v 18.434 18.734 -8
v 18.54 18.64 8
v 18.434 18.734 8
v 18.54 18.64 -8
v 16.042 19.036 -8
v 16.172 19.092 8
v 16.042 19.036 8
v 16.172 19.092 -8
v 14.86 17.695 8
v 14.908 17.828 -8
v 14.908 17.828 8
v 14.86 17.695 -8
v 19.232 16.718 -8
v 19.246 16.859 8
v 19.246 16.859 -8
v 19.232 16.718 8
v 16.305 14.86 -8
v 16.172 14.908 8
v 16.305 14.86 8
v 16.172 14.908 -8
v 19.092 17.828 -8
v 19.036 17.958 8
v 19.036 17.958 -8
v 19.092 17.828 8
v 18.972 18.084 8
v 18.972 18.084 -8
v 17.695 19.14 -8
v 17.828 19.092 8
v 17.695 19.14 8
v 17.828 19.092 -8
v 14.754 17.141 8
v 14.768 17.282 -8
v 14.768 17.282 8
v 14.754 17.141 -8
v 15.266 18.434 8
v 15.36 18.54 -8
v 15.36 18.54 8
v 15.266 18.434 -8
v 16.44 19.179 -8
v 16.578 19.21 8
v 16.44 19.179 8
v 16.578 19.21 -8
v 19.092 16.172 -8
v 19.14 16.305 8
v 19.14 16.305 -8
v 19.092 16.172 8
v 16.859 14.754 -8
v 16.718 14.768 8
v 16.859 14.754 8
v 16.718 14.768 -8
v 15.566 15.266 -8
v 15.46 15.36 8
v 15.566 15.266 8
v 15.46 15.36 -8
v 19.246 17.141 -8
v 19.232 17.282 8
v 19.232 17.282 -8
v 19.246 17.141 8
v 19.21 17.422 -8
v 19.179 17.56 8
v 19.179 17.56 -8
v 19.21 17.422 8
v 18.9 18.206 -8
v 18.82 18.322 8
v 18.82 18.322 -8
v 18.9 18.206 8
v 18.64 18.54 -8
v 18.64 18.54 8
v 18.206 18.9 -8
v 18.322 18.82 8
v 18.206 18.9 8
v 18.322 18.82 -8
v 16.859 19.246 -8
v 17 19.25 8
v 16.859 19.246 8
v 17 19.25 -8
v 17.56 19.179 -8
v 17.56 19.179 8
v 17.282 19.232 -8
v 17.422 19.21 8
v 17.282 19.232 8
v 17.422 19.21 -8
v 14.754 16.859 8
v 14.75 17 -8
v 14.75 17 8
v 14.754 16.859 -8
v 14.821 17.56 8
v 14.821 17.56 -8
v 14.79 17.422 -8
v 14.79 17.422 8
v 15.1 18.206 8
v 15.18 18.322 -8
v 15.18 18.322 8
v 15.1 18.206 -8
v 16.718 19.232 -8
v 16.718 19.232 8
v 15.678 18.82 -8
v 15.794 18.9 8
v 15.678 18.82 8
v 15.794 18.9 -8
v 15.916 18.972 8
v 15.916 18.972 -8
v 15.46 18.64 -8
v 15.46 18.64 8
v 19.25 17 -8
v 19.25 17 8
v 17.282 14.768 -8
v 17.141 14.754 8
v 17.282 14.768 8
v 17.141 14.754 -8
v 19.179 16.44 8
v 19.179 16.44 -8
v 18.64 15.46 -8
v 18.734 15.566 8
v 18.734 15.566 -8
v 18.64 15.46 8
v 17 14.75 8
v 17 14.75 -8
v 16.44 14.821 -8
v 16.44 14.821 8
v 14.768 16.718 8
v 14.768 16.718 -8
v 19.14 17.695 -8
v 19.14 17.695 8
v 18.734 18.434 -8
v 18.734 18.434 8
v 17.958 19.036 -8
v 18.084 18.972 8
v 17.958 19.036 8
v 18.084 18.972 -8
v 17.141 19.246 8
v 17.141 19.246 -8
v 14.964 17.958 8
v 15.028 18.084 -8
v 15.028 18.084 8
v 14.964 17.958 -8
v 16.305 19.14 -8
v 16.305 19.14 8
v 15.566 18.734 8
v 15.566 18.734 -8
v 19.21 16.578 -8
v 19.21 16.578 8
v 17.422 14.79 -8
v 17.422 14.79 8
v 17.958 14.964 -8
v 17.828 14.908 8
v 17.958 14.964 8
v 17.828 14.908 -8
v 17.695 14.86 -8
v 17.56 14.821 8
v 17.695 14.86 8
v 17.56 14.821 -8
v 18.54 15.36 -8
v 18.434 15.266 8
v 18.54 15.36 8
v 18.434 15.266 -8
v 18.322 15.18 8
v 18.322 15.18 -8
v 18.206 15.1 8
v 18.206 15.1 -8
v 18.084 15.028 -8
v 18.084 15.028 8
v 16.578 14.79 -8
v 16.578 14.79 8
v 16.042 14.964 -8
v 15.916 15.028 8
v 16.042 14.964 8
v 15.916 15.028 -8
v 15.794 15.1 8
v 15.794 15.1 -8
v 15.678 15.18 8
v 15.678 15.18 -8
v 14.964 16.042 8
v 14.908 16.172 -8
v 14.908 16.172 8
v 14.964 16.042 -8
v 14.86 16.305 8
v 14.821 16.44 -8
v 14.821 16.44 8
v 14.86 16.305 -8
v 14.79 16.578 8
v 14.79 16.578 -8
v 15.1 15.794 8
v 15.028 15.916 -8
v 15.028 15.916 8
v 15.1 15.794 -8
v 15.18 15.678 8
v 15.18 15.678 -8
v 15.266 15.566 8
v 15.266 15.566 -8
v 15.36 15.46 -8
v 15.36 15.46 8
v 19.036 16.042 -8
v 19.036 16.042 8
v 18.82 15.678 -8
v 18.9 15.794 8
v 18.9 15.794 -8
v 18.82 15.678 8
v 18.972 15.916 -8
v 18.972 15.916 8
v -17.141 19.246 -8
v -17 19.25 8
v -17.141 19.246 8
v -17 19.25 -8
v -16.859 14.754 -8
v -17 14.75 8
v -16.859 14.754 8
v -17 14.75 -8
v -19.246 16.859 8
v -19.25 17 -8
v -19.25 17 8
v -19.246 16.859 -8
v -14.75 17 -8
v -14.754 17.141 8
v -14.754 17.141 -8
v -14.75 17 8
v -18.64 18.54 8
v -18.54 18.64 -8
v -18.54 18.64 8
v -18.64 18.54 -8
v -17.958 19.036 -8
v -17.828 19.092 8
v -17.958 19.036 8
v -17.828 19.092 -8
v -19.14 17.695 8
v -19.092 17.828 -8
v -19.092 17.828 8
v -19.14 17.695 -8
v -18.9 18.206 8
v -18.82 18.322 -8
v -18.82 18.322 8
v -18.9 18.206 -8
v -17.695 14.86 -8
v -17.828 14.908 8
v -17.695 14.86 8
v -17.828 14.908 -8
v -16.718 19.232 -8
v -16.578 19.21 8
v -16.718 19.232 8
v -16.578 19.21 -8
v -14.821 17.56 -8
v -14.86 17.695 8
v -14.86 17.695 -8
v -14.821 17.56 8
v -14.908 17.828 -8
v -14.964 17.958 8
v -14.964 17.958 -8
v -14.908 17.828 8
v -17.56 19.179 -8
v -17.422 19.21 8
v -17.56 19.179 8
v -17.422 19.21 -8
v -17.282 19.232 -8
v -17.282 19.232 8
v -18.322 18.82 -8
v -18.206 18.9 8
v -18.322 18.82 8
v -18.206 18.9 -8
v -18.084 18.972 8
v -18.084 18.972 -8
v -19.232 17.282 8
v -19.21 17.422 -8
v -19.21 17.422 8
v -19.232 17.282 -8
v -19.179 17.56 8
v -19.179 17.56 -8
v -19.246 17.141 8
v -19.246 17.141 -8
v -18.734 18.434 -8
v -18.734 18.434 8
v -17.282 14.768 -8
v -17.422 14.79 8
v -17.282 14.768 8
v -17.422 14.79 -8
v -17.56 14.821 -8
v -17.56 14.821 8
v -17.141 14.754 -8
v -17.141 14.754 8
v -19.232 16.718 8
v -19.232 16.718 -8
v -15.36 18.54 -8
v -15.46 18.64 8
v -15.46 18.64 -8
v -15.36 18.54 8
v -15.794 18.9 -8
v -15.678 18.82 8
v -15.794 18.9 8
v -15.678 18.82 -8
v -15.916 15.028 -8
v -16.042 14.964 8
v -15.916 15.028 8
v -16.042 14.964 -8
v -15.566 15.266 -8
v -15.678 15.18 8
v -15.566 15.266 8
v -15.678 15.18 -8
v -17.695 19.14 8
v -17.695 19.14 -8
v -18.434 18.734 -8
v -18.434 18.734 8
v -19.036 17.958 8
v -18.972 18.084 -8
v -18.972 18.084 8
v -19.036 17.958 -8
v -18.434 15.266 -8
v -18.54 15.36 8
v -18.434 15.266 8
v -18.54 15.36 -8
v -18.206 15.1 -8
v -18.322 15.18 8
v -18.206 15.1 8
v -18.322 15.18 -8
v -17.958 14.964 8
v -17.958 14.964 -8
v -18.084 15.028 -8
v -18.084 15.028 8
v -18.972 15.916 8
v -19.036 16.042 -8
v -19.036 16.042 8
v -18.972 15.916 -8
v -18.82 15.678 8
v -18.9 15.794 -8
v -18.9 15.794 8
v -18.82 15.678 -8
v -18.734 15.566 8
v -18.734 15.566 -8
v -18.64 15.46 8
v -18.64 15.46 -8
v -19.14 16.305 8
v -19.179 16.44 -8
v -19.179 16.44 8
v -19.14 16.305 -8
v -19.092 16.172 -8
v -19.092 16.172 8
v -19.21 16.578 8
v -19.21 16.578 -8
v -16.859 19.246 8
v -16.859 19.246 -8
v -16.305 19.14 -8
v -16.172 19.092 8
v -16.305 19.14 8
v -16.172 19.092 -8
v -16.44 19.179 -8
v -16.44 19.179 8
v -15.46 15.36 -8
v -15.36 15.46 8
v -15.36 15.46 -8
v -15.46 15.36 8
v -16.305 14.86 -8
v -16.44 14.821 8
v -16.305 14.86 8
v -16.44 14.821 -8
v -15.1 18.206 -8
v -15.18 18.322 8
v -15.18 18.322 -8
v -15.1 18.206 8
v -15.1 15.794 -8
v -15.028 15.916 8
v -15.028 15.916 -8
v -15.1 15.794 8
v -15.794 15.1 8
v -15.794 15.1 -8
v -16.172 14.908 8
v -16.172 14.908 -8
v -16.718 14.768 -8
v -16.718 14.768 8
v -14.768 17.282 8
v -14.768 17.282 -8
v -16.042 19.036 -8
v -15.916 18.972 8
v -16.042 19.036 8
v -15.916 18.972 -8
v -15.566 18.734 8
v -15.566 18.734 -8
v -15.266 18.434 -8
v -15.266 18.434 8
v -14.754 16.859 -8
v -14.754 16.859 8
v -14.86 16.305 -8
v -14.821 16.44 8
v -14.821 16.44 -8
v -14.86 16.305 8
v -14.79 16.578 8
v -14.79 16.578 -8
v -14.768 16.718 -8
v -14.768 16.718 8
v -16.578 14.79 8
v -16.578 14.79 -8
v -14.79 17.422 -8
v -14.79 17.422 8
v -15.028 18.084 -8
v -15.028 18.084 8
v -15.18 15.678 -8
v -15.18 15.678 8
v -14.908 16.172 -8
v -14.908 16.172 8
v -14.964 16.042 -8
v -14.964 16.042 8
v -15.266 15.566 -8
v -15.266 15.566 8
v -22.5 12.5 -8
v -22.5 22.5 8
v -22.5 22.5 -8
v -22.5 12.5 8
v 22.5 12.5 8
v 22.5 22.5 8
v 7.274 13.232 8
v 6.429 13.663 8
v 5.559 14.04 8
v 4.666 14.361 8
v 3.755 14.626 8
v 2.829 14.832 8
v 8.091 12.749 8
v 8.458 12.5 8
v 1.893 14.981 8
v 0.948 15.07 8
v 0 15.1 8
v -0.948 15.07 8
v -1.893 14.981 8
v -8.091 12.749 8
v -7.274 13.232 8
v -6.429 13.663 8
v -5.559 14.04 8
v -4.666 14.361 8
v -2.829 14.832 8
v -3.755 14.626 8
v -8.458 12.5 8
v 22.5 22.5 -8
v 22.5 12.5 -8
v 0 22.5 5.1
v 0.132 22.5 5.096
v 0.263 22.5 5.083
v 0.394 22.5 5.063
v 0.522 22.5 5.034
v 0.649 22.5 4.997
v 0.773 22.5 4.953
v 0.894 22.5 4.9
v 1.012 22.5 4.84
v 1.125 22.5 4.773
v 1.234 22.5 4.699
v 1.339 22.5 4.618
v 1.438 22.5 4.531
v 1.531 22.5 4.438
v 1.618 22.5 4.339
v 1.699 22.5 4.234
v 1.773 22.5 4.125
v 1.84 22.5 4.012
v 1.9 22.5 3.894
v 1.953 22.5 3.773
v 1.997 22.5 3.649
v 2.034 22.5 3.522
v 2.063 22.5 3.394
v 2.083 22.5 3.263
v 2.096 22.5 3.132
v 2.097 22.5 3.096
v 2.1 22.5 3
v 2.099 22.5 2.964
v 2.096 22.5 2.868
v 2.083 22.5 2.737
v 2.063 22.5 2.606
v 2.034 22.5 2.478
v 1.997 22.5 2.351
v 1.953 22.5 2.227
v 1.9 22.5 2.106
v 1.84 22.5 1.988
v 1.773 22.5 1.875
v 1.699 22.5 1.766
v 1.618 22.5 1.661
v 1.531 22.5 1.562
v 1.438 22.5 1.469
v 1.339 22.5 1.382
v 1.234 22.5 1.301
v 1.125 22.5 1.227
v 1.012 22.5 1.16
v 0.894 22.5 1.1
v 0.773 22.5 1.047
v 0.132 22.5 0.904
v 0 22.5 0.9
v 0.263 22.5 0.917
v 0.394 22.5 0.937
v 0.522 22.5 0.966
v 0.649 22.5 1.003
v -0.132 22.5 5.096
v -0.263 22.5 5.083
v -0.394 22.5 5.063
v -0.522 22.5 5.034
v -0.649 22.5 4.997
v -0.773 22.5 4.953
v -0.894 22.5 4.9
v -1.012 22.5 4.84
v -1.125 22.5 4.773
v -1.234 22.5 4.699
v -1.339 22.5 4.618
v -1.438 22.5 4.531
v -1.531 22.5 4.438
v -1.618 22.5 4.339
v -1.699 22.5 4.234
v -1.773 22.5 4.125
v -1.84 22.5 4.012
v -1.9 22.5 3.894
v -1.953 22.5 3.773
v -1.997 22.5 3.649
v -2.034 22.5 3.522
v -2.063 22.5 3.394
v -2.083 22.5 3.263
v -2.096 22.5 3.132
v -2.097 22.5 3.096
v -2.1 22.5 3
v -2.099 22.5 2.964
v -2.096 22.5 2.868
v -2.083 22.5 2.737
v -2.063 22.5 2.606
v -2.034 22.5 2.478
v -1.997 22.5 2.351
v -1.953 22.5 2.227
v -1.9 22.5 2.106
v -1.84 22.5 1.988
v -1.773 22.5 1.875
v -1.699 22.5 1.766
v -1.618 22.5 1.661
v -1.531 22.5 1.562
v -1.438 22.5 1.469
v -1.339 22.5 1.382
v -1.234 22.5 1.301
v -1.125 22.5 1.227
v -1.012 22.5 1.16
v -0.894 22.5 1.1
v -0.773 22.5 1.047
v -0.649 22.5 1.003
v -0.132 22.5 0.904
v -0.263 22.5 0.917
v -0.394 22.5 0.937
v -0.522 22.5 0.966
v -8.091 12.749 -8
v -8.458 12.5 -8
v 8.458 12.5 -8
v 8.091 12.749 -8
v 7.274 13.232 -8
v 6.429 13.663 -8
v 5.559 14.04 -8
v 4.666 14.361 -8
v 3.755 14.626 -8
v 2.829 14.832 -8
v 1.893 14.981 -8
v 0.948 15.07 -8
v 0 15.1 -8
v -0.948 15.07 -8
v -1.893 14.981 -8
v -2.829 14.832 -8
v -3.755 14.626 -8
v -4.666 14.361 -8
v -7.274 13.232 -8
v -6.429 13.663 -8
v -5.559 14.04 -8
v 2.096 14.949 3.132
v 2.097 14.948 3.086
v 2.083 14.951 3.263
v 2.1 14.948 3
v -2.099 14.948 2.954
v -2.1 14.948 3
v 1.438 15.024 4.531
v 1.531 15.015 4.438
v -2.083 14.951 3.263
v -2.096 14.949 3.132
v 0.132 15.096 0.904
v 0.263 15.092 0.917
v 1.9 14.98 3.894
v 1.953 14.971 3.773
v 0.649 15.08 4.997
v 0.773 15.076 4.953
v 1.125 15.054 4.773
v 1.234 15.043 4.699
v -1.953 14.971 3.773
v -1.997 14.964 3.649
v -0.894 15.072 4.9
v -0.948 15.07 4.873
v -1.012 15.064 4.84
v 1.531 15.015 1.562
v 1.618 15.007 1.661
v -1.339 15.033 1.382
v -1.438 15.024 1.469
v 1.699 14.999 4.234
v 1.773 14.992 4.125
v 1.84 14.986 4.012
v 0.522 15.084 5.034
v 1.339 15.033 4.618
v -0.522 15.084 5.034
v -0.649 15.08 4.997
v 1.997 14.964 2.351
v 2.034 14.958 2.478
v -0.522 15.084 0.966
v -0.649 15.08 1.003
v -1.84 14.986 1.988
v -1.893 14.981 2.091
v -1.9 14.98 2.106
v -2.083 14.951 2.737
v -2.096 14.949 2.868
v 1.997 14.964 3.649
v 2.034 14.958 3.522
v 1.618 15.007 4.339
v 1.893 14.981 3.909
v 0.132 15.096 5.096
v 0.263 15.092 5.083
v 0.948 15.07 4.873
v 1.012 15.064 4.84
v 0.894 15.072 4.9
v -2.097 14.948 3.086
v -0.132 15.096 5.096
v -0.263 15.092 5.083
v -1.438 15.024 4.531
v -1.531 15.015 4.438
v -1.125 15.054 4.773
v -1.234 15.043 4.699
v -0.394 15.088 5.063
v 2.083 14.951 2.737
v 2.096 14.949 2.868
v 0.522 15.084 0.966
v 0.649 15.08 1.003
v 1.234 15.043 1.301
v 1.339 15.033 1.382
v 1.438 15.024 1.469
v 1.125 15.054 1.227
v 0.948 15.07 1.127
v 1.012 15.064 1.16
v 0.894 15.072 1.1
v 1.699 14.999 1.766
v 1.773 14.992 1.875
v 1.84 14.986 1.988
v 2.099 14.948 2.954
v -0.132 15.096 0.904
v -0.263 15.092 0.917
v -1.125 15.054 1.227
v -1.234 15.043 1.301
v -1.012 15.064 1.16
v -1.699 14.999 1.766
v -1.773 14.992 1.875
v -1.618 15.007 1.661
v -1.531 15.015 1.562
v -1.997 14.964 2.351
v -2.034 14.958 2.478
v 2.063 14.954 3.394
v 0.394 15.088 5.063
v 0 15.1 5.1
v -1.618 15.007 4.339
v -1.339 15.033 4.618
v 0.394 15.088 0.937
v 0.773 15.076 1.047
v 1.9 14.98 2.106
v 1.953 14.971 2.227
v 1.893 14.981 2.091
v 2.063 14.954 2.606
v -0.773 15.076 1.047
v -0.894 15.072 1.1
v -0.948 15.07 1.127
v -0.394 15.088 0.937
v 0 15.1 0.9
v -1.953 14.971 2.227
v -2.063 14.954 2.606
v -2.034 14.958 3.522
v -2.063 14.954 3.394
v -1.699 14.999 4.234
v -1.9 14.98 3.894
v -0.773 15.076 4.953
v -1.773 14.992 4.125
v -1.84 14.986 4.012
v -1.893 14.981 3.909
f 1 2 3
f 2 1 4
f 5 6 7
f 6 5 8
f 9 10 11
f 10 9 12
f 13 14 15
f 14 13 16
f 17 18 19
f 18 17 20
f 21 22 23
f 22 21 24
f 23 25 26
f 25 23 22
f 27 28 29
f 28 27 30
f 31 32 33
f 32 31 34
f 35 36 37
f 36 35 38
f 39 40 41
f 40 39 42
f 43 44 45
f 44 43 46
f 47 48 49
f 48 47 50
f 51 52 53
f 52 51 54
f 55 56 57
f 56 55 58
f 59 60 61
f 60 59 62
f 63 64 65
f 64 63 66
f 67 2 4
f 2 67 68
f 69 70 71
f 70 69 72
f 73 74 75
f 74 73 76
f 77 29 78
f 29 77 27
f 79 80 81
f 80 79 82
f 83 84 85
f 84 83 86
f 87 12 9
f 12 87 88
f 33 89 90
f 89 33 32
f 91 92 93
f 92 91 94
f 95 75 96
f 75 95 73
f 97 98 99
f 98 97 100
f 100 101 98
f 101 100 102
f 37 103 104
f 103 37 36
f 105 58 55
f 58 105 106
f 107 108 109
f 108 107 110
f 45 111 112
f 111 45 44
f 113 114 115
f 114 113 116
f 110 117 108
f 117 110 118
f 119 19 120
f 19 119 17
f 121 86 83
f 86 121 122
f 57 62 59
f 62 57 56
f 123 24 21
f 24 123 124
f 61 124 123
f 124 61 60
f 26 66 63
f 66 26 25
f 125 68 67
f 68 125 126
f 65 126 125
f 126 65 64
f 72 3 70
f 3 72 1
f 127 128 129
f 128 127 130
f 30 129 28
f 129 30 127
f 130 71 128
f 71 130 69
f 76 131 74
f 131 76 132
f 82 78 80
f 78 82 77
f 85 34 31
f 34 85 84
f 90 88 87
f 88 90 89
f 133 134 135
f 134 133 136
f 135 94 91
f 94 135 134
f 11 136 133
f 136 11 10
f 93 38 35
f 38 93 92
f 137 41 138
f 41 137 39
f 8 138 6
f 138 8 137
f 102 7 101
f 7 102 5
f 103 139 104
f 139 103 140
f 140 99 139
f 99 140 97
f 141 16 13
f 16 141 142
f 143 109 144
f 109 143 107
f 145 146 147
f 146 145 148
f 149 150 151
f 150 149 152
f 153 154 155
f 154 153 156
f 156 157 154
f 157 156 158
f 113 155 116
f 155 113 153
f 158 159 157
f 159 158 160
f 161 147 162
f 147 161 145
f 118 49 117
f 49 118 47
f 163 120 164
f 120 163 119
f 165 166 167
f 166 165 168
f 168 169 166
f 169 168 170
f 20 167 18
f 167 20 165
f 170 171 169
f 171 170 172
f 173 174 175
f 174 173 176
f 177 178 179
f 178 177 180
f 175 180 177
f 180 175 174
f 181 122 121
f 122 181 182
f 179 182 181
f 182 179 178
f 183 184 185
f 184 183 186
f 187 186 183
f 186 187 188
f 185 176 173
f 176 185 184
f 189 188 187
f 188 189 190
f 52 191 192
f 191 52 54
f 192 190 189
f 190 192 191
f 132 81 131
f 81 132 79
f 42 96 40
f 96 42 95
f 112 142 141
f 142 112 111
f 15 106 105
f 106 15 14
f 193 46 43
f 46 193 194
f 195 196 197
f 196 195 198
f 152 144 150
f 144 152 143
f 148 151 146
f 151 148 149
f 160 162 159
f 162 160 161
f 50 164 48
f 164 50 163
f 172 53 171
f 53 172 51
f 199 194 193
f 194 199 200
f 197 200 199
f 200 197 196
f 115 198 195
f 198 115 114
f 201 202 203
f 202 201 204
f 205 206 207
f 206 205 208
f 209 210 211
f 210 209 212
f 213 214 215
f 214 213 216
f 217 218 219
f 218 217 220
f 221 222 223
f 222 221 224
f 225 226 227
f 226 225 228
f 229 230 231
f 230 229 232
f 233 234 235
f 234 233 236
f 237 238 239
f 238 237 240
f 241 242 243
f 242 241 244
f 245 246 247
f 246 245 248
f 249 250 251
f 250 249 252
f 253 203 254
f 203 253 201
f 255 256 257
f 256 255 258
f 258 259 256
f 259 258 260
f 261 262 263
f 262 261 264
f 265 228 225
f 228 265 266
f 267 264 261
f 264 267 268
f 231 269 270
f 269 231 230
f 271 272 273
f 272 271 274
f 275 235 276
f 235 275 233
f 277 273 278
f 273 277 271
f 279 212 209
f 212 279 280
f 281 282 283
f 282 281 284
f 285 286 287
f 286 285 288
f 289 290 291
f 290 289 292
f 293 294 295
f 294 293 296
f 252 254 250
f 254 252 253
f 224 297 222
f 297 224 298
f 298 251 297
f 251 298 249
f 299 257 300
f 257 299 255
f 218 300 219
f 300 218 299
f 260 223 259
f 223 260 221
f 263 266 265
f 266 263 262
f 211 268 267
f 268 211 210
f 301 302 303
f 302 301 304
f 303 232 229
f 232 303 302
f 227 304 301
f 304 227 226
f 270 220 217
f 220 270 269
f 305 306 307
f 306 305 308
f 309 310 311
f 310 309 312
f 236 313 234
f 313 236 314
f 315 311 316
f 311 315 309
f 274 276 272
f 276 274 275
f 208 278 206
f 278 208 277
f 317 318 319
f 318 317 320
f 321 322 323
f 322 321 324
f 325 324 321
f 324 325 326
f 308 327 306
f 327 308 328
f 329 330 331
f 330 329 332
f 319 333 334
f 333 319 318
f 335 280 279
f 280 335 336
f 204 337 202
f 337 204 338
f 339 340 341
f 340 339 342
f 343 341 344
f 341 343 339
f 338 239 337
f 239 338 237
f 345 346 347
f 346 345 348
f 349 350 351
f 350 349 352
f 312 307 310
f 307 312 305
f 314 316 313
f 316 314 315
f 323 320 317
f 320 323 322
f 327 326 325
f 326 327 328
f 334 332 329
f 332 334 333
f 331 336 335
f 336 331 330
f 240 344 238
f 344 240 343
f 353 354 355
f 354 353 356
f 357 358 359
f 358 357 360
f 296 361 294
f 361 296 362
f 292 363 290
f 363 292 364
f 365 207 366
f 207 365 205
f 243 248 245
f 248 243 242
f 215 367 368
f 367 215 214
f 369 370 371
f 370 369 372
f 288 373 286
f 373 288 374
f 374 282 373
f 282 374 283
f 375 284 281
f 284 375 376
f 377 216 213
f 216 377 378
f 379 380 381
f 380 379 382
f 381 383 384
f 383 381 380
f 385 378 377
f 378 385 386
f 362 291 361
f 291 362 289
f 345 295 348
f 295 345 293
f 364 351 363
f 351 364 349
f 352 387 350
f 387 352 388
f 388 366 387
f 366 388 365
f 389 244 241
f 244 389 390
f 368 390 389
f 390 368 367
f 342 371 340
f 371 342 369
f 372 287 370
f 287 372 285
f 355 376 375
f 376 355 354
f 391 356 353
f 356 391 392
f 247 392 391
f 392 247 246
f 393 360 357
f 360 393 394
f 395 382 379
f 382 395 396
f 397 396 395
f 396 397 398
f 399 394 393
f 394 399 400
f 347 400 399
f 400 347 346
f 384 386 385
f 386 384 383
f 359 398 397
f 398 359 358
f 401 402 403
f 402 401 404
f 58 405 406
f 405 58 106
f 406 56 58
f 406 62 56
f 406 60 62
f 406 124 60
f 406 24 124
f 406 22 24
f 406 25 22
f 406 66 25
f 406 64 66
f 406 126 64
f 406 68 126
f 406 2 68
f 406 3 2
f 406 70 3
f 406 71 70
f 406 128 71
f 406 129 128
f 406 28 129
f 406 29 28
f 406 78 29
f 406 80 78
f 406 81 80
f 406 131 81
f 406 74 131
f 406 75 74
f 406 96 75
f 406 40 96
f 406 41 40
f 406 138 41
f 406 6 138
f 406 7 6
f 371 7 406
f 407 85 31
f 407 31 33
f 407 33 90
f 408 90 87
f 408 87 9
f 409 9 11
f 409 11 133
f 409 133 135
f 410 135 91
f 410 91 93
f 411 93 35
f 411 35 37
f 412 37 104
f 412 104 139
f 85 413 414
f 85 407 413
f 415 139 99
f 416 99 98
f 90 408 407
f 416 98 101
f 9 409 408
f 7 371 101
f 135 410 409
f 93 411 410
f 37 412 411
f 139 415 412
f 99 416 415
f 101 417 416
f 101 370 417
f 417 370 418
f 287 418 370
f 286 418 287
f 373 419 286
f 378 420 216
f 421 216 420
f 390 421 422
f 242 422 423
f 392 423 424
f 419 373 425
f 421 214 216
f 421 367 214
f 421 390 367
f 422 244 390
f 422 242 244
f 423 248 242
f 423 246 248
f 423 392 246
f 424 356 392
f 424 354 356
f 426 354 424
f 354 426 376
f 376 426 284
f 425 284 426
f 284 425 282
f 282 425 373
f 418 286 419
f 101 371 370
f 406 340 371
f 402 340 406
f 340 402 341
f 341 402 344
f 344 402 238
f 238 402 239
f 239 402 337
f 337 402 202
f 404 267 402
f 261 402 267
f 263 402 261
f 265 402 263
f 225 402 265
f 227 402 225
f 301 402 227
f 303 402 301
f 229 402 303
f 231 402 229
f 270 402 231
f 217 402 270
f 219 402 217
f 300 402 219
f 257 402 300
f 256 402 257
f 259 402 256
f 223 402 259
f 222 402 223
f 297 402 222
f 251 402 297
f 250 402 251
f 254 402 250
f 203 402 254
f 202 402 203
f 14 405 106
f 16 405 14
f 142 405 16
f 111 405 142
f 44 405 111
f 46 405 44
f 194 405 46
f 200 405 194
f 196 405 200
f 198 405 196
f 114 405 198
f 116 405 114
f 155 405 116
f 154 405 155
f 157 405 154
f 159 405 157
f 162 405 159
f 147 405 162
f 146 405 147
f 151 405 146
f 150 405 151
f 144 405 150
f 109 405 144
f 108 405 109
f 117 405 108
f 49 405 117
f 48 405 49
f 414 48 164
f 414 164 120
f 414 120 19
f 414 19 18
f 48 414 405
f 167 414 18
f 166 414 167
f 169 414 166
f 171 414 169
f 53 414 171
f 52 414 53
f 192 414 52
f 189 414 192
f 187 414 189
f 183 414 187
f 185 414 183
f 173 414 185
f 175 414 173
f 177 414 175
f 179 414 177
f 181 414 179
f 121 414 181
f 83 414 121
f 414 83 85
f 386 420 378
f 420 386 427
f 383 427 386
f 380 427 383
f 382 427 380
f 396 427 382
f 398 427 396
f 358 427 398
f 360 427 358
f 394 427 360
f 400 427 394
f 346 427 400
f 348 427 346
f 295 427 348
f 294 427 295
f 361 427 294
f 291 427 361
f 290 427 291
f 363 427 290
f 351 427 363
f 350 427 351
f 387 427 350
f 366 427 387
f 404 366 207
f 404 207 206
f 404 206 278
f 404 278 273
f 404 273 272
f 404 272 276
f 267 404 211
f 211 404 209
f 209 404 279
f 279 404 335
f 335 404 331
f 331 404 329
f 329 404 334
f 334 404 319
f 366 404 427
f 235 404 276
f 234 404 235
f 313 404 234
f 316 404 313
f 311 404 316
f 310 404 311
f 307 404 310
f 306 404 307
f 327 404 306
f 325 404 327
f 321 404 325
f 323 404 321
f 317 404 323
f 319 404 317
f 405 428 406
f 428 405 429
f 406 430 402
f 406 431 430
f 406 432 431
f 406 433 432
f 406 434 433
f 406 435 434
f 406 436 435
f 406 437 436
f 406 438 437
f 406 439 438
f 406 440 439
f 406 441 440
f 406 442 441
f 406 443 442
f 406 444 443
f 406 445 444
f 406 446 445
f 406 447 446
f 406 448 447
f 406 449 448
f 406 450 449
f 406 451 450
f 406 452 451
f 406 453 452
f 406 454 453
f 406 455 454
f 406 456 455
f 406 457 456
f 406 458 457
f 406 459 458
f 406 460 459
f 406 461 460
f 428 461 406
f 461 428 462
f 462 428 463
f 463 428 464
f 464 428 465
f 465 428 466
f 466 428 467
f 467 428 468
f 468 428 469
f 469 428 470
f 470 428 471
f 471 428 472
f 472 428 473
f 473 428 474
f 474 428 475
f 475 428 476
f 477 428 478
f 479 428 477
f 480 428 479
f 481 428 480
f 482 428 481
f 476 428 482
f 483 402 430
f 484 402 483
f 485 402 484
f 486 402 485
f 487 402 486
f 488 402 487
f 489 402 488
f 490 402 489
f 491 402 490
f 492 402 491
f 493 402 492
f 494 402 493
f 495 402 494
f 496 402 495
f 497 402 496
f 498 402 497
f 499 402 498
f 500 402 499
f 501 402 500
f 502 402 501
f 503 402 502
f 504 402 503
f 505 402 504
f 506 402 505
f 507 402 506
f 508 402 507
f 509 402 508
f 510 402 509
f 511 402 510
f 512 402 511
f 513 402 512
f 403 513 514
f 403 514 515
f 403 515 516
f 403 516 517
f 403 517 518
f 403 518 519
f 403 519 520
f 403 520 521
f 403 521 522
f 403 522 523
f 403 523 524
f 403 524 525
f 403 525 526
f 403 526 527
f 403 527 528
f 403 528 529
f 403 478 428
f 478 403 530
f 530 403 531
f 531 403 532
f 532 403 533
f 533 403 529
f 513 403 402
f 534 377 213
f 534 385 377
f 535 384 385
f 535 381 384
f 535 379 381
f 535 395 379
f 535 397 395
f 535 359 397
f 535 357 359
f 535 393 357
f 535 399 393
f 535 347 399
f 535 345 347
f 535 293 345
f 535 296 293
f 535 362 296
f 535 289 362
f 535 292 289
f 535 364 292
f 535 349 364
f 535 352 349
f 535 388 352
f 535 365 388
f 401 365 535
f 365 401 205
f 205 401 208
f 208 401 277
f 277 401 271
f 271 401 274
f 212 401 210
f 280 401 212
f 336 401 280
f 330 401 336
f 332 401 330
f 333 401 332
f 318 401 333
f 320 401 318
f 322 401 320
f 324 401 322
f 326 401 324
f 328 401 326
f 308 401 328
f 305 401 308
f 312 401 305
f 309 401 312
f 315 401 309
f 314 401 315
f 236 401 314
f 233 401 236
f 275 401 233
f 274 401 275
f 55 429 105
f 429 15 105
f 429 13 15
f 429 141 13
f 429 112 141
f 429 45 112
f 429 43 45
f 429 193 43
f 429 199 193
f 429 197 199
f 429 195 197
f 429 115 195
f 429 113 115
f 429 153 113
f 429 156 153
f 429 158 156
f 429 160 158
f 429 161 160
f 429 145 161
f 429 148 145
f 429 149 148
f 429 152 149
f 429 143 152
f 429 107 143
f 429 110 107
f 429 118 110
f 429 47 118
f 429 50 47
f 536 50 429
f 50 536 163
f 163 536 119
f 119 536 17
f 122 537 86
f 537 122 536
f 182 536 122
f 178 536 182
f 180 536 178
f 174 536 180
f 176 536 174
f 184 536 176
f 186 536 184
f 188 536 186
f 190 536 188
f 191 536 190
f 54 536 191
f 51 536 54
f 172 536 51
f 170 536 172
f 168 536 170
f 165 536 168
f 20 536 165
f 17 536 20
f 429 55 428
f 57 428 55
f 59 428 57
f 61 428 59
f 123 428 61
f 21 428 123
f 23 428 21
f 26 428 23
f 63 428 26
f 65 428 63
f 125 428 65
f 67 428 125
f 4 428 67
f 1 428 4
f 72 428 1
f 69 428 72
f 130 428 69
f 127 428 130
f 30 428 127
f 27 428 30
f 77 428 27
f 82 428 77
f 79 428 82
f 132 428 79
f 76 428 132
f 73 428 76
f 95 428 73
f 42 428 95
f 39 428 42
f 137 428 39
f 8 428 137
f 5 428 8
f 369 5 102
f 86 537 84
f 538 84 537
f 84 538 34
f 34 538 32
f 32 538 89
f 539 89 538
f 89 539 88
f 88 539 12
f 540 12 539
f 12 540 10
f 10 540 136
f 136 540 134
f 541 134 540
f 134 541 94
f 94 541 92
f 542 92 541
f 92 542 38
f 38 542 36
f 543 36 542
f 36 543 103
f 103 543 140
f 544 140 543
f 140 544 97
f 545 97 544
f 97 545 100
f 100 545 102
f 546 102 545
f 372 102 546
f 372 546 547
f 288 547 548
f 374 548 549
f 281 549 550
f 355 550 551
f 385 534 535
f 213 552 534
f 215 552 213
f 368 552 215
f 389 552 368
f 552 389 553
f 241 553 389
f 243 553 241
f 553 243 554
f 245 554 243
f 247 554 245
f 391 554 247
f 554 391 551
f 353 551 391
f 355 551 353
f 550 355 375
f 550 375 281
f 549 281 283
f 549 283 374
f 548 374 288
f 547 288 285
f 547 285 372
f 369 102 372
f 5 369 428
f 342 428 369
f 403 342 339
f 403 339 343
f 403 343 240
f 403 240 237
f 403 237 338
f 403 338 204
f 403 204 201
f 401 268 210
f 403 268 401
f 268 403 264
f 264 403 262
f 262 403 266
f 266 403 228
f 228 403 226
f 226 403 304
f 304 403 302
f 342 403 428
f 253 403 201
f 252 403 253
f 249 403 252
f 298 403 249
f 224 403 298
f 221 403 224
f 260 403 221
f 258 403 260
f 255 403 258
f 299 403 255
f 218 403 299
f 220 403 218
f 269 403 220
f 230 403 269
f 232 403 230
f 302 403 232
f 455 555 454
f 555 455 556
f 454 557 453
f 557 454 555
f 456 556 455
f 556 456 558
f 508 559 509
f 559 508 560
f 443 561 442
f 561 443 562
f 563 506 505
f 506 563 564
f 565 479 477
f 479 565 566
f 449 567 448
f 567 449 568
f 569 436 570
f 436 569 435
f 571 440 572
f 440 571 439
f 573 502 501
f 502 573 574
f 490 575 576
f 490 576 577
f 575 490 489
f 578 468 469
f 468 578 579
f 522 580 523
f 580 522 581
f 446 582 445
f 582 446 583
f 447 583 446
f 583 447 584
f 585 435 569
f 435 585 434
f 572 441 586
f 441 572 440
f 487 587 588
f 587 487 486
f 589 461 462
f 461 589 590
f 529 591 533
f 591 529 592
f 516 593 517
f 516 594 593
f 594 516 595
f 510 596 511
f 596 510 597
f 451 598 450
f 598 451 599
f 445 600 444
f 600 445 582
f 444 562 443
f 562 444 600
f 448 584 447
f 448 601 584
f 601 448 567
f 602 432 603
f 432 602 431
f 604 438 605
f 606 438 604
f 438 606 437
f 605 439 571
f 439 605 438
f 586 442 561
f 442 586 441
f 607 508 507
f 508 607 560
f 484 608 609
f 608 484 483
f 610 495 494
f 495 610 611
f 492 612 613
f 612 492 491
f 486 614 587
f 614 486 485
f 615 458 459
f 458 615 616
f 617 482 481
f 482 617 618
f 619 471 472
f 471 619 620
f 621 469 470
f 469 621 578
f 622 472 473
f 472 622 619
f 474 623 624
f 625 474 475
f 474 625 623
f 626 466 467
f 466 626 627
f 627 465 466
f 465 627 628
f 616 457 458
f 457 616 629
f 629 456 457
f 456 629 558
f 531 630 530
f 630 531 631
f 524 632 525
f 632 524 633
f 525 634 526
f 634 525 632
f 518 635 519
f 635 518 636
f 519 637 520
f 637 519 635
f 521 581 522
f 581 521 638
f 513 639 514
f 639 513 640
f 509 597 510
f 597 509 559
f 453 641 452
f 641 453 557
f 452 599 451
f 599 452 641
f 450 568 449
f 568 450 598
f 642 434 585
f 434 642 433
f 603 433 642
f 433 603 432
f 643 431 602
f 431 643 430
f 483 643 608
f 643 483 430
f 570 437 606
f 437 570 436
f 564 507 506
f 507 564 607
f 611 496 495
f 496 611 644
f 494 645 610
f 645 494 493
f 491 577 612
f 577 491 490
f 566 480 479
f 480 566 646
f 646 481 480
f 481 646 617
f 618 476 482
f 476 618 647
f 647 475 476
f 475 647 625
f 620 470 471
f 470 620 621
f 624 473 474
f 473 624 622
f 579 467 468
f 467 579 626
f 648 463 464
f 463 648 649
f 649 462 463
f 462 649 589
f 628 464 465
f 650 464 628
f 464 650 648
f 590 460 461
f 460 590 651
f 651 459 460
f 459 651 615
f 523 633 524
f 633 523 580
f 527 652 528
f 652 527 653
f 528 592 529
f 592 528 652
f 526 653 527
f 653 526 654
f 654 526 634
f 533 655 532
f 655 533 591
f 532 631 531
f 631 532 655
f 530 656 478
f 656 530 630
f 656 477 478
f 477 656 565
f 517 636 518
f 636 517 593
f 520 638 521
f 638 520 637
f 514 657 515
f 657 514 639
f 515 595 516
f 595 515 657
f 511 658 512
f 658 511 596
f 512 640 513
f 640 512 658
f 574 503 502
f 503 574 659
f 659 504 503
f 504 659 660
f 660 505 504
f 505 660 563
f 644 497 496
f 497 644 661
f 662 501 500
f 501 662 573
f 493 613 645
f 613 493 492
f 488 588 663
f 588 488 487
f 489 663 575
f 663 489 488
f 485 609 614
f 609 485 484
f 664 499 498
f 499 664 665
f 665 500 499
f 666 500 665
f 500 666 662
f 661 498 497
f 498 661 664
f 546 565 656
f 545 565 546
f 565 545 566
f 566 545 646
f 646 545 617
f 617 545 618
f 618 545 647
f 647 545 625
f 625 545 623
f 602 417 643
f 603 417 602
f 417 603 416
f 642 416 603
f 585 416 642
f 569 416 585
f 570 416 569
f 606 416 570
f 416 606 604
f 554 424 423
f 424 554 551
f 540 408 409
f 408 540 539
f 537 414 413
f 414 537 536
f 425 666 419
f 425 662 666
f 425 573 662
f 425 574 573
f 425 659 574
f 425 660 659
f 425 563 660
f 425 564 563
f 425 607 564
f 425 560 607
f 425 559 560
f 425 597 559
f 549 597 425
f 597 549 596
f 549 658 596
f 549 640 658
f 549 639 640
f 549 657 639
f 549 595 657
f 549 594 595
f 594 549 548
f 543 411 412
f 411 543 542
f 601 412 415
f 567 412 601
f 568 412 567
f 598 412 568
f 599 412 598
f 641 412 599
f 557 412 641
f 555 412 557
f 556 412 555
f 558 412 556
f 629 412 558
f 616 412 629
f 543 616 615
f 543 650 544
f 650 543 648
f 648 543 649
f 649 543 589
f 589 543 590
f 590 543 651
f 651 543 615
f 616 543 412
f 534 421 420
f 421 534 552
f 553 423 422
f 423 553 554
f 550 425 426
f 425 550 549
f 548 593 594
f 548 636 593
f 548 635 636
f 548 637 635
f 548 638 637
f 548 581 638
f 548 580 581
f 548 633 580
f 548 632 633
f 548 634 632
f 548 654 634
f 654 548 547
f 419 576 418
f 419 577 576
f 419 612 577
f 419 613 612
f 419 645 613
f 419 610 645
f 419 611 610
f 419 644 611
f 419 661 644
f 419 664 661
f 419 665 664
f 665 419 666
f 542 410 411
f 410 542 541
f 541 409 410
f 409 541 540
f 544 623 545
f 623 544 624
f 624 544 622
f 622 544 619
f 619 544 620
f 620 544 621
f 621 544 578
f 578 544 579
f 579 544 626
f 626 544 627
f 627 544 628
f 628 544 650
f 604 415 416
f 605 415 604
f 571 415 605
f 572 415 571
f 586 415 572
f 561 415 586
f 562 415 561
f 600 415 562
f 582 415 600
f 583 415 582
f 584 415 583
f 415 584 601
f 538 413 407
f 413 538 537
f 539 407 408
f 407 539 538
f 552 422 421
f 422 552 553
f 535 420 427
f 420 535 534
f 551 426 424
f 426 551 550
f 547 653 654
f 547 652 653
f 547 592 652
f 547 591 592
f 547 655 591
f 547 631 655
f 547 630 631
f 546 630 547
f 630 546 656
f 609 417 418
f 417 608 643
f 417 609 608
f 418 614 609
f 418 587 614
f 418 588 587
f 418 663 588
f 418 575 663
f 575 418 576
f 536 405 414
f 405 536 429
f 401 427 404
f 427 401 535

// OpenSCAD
difference()
{
translate ([0,11.25,0]) cube([45,22.5,16], true);
translate ([0,0,3])rotate([90,0,0]) cylinder (h = 100, r=2.1, center = true, $fn=100);
cylinder (h = 16, r=15.1, center = true, $fn=100);
    
cube([45,25,16], true);
    
    for (a = [ 0 : 90 : 270 ])   rotate([0,0,a]) translate ([17,17,0]) cylinder (h = 100, r=2.25, center = true, $fn=100);
}
